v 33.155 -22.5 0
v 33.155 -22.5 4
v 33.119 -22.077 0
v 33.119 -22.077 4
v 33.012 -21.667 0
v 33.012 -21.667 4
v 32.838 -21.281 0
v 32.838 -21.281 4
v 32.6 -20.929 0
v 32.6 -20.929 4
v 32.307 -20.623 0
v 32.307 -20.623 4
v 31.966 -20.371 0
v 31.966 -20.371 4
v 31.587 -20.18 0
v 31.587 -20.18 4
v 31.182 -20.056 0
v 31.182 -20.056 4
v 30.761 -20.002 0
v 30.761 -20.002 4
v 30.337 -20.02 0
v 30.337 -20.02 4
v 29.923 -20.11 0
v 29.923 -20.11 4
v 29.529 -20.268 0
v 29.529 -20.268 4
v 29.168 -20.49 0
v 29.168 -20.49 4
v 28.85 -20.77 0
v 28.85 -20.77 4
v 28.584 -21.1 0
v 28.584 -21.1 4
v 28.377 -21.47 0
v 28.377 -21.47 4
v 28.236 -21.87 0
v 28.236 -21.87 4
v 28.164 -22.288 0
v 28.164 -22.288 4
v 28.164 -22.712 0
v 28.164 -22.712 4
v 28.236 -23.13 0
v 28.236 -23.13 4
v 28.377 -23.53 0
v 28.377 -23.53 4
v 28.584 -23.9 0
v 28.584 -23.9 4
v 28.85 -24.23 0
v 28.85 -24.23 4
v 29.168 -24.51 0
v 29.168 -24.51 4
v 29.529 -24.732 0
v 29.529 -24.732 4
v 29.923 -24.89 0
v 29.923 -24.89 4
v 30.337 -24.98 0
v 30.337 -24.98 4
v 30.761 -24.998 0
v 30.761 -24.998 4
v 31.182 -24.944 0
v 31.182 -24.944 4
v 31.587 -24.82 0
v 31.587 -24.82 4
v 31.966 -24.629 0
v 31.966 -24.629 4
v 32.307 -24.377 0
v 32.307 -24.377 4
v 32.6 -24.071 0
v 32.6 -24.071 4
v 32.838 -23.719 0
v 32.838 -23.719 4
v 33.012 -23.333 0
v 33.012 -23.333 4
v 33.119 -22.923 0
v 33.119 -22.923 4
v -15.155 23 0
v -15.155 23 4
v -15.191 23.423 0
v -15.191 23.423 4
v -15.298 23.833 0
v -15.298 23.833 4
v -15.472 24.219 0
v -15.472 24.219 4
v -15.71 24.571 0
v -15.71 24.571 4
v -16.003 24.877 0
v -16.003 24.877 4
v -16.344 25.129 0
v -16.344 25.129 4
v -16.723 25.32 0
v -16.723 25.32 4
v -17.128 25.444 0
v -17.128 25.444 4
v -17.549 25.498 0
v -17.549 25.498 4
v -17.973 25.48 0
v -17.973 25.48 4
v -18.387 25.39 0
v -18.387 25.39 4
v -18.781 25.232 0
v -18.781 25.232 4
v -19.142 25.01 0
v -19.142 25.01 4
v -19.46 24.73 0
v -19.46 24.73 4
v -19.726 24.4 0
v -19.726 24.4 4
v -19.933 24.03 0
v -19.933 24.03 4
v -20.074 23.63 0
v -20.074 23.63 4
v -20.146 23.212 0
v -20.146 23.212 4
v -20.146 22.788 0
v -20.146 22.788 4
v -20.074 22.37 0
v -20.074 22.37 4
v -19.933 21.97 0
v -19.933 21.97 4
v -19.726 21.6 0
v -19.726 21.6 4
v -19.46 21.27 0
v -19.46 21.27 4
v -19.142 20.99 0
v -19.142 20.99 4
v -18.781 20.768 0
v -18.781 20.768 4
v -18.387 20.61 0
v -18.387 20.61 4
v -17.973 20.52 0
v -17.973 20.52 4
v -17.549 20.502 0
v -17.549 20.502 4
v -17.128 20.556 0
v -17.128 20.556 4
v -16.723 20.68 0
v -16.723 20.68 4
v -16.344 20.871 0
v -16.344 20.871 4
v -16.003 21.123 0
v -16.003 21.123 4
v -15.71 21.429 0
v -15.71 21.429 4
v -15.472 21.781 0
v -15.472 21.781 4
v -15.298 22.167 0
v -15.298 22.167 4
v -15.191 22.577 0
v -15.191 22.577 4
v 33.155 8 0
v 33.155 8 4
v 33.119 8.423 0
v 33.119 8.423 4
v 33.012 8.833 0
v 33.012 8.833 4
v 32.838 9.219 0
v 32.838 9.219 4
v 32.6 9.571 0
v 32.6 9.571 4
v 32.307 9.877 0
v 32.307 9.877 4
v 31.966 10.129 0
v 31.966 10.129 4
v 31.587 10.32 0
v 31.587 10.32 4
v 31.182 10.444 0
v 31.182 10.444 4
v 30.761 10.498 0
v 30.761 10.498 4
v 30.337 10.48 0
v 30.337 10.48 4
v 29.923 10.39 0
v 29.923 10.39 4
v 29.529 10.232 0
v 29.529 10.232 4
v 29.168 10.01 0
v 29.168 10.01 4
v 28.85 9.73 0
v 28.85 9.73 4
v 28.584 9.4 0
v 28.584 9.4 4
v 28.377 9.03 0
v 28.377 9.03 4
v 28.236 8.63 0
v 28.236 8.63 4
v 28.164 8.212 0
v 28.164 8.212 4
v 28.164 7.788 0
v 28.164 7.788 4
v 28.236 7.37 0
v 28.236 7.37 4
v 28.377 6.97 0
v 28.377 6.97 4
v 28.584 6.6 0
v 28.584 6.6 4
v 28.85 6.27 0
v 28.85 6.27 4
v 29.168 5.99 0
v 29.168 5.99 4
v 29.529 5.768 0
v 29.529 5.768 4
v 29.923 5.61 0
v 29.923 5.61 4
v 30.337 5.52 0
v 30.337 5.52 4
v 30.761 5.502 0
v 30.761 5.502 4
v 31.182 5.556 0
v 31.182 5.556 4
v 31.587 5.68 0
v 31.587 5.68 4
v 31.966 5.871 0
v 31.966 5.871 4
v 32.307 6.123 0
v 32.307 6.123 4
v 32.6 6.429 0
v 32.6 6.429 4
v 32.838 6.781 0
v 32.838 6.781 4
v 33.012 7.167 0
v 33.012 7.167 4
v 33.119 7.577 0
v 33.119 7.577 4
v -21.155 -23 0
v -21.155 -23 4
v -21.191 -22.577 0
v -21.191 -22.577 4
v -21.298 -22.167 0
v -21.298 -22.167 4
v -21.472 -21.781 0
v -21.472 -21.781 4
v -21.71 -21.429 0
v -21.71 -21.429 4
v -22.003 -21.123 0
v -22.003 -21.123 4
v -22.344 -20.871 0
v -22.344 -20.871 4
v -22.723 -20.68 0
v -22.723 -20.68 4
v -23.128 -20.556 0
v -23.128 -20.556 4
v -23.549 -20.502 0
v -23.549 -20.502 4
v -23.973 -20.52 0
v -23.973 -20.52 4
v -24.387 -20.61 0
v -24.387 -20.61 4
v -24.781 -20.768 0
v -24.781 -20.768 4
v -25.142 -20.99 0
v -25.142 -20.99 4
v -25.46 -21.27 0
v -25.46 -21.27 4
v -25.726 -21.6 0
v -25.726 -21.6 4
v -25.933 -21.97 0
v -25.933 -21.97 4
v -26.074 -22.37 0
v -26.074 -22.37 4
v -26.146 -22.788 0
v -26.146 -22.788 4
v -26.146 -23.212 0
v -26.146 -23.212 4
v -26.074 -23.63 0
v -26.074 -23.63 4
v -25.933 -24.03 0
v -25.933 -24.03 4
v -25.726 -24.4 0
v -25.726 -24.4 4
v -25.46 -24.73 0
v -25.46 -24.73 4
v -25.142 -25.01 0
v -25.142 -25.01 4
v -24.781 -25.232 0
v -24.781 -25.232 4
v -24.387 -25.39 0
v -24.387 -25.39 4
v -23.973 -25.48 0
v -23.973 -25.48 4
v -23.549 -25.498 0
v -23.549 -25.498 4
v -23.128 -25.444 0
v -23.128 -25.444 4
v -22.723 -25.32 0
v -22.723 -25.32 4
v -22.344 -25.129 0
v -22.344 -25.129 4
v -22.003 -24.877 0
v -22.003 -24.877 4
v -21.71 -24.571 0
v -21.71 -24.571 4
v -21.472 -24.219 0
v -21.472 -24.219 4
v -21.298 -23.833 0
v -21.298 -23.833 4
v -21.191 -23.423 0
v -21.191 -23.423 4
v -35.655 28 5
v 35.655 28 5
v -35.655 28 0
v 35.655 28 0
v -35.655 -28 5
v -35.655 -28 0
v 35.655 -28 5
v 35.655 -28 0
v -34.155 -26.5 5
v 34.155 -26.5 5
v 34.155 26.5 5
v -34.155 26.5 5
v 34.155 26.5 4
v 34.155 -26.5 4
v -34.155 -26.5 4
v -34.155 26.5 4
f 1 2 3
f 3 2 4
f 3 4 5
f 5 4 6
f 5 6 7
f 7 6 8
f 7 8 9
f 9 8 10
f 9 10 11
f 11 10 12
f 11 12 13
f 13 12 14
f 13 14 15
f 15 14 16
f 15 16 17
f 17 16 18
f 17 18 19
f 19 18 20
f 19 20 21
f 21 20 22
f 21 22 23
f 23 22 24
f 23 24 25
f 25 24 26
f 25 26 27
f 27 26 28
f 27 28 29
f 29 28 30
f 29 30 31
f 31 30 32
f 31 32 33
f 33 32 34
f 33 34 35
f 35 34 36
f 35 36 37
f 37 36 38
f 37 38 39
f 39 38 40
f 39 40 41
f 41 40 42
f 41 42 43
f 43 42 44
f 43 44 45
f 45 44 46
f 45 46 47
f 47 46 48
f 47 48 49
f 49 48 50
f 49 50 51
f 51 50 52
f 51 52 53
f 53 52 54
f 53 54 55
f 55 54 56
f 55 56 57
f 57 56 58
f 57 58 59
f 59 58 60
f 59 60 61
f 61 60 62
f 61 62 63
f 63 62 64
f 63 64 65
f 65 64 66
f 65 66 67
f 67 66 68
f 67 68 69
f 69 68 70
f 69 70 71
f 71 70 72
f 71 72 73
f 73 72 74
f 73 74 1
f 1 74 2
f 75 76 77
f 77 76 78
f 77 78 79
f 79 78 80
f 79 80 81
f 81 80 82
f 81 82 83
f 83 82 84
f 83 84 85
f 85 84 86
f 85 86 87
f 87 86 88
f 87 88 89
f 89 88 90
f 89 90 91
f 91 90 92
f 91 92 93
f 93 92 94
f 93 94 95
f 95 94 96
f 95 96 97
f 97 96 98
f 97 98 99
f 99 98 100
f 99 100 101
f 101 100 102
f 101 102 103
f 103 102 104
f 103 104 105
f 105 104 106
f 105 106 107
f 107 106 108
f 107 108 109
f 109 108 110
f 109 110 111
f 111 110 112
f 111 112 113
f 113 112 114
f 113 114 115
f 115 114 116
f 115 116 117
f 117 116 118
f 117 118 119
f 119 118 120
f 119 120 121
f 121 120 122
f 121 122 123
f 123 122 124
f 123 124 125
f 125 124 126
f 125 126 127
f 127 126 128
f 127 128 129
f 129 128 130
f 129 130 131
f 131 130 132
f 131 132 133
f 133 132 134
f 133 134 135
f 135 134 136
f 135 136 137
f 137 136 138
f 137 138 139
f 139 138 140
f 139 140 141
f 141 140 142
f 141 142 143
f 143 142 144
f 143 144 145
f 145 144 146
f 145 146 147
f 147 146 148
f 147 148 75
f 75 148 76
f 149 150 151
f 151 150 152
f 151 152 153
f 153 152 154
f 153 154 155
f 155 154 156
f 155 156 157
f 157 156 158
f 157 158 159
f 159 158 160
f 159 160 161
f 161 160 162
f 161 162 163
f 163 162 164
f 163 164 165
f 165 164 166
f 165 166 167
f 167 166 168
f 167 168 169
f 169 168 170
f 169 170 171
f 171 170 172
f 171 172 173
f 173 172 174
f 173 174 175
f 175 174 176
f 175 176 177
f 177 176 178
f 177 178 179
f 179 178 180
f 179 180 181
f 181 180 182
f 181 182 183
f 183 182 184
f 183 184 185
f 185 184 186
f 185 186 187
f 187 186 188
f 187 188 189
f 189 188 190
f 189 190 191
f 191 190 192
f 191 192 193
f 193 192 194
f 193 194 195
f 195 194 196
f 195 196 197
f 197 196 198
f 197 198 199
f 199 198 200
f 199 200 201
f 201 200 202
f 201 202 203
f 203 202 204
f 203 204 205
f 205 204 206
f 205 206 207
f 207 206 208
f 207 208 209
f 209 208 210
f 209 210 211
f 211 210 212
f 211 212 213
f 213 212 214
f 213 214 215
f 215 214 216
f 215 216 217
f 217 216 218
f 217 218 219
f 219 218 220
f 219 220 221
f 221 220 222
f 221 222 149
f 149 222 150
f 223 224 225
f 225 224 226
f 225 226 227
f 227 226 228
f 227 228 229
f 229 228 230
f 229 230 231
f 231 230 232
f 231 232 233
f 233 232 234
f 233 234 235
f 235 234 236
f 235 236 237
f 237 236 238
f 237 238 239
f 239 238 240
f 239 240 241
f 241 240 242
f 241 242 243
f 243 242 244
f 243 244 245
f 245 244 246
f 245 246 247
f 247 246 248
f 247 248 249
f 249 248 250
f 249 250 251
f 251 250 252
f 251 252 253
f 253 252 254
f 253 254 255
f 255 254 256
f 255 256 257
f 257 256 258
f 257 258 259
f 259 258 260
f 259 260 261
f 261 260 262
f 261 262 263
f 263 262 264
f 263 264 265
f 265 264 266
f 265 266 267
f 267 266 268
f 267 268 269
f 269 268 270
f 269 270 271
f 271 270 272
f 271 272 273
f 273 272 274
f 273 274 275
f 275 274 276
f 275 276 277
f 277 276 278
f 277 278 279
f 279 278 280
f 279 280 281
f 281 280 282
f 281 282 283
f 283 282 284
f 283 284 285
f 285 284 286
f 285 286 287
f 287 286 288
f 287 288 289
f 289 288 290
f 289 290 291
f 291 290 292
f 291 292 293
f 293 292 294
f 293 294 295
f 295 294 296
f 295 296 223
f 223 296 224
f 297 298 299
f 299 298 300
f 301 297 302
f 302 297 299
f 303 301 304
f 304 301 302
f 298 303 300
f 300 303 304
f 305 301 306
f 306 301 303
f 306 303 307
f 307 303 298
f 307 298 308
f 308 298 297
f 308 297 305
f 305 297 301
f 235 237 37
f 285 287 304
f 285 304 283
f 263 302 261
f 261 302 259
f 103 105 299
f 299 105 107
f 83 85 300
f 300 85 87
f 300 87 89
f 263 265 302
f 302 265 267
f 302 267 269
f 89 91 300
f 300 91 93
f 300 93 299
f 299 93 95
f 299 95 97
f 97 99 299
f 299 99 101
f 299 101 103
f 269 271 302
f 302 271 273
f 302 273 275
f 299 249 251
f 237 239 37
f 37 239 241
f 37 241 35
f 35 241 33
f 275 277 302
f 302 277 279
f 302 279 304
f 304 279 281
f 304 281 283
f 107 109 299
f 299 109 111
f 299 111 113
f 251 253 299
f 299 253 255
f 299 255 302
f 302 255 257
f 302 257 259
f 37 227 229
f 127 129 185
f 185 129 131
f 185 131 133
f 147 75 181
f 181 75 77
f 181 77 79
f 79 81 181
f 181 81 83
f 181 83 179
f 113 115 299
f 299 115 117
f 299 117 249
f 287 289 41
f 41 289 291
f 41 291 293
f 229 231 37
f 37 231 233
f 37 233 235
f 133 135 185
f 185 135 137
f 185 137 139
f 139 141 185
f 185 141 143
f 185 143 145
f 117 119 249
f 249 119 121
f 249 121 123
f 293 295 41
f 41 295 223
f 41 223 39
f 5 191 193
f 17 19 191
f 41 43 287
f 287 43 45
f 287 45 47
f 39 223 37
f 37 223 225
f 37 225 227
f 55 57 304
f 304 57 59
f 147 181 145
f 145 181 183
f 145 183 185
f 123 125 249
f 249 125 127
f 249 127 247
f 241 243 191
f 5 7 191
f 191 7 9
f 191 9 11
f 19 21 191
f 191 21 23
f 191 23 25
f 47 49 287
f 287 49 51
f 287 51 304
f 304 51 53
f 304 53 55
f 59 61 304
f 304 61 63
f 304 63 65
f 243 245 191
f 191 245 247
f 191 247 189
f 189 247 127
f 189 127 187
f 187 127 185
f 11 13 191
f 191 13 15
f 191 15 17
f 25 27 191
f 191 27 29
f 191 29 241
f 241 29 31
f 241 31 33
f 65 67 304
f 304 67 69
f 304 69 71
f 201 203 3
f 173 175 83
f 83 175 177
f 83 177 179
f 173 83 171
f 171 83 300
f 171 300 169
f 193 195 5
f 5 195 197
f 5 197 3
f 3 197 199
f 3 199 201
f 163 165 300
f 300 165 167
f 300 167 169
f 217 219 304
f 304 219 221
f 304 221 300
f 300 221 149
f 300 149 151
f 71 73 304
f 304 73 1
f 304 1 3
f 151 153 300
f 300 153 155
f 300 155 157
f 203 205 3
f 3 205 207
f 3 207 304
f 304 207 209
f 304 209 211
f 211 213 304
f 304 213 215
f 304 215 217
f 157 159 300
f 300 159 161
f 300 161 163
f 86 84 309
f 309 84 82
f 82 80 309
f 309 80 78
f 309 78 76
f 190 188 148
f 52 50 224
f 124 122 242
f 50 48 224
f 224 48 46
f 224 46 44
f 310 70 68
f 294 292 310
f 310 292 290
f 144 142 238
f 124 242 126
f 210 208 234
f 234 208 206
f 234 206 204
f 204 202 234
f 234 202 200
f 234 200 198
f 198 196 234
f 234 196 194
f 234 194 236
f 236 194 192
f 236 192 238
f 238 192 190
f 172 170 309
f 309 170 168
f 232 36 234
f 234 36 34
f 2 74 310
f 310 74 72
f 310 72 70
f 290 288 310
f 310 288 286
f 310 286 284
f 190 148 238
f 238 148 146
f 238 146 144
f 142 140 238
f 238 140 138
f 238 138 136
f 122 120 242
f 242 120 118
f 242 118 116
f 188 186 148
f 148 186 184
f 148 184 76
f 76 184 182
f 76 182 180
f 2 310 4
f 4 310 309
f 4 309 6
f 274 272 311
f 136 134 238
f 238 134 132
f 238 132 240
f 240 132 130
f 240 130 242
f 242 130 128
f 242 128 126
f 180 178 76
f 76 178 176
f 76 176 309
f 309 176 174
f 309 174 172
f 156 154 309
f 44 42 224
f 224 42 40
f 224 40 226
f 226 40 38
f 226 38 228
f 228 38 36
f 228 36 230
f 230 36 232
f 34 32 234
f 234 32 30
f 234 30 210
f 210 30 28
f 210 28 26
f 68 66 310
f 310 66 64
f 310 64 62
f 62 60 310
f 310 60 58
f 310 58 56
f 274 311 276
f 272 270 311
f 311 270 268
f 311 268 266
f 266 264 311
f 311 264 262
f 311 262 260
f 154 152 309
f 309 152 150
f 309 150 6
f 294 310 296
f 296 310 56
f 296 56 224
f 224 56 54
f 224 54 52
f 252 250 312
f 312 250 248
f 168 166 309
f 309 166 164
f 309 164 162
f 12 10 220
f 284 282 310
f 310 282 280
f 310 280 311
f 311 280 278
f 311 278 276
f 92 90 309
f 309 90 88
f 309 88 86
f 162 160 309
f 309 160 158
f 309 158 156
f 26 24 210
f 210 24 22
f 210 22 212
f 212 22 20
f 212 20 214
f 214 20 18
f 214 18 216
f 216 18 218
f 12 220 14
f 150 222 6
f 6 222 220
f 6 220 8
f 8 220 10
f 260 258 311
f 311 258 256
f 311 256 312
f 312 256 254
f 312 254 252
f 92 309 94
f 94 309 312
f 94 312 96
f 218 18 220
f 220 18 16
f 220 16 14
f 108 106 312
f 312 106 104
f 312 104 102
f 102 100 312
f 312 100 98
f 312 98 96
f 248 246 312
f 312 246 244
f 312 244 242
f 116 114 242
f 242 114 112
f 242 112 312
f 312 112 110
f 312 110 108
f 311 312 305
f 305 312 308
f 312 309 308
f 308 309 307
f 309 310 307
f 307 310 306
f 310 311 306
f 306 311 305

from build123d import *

# Parameters (mm, degrees)
SKETCH1_W           = 71.31
SKETCH1_H           = 56
BOSS_EXTRUDE1_DEPTH = 5
SKETCH2_R           = 2.5
CUT_EXTRUDE1_DEPTH  = 5
SKETCH3_W           = 68.31
SKETCH3_H           = 53
CUT_EXTRUDE2_DEPTH  = 1


with BuildPart() as part:
    # Sketch1 → Boss-Extrude1 (new body)
    with BuildSketch(Plane.XY):
        Rectangle(SKETCH1_W, SKETCH1_H)
    extrude(amount=BOSS_EXTRUDE1_DEPTH)

    # Sketch2 → Cut-Extrude1 (cut)
    with BuildSketch(Plane.XY.offset(5)):
        with Locations((-23.655, -23)):
            Circle(SKETCH2_R)
        with Locations((30.655, 8)):
            Circle(SKETCH2_R)
        with Locations((-17.655, 23)):
            Circle(SKETCH2_R)
        with Locations((30.655, -22.5)):
            Circle(SKETCH2_R)
    extrude(amount=-CUT_EXTRUDE1_DEPTH, mode=Mode.SUBTRACT)

    # Sketch3 → Cut-Extrude2 (cut)
    with BuildSketch(Plane.XY.offset(5)):
        Rectangle(SKETCH3_W, SKETCH3_H)
    extrude(amount=-CUT_EXTRUDE2_DEPTH, mode=Mode.SUBTRACT)


solid = part.part
